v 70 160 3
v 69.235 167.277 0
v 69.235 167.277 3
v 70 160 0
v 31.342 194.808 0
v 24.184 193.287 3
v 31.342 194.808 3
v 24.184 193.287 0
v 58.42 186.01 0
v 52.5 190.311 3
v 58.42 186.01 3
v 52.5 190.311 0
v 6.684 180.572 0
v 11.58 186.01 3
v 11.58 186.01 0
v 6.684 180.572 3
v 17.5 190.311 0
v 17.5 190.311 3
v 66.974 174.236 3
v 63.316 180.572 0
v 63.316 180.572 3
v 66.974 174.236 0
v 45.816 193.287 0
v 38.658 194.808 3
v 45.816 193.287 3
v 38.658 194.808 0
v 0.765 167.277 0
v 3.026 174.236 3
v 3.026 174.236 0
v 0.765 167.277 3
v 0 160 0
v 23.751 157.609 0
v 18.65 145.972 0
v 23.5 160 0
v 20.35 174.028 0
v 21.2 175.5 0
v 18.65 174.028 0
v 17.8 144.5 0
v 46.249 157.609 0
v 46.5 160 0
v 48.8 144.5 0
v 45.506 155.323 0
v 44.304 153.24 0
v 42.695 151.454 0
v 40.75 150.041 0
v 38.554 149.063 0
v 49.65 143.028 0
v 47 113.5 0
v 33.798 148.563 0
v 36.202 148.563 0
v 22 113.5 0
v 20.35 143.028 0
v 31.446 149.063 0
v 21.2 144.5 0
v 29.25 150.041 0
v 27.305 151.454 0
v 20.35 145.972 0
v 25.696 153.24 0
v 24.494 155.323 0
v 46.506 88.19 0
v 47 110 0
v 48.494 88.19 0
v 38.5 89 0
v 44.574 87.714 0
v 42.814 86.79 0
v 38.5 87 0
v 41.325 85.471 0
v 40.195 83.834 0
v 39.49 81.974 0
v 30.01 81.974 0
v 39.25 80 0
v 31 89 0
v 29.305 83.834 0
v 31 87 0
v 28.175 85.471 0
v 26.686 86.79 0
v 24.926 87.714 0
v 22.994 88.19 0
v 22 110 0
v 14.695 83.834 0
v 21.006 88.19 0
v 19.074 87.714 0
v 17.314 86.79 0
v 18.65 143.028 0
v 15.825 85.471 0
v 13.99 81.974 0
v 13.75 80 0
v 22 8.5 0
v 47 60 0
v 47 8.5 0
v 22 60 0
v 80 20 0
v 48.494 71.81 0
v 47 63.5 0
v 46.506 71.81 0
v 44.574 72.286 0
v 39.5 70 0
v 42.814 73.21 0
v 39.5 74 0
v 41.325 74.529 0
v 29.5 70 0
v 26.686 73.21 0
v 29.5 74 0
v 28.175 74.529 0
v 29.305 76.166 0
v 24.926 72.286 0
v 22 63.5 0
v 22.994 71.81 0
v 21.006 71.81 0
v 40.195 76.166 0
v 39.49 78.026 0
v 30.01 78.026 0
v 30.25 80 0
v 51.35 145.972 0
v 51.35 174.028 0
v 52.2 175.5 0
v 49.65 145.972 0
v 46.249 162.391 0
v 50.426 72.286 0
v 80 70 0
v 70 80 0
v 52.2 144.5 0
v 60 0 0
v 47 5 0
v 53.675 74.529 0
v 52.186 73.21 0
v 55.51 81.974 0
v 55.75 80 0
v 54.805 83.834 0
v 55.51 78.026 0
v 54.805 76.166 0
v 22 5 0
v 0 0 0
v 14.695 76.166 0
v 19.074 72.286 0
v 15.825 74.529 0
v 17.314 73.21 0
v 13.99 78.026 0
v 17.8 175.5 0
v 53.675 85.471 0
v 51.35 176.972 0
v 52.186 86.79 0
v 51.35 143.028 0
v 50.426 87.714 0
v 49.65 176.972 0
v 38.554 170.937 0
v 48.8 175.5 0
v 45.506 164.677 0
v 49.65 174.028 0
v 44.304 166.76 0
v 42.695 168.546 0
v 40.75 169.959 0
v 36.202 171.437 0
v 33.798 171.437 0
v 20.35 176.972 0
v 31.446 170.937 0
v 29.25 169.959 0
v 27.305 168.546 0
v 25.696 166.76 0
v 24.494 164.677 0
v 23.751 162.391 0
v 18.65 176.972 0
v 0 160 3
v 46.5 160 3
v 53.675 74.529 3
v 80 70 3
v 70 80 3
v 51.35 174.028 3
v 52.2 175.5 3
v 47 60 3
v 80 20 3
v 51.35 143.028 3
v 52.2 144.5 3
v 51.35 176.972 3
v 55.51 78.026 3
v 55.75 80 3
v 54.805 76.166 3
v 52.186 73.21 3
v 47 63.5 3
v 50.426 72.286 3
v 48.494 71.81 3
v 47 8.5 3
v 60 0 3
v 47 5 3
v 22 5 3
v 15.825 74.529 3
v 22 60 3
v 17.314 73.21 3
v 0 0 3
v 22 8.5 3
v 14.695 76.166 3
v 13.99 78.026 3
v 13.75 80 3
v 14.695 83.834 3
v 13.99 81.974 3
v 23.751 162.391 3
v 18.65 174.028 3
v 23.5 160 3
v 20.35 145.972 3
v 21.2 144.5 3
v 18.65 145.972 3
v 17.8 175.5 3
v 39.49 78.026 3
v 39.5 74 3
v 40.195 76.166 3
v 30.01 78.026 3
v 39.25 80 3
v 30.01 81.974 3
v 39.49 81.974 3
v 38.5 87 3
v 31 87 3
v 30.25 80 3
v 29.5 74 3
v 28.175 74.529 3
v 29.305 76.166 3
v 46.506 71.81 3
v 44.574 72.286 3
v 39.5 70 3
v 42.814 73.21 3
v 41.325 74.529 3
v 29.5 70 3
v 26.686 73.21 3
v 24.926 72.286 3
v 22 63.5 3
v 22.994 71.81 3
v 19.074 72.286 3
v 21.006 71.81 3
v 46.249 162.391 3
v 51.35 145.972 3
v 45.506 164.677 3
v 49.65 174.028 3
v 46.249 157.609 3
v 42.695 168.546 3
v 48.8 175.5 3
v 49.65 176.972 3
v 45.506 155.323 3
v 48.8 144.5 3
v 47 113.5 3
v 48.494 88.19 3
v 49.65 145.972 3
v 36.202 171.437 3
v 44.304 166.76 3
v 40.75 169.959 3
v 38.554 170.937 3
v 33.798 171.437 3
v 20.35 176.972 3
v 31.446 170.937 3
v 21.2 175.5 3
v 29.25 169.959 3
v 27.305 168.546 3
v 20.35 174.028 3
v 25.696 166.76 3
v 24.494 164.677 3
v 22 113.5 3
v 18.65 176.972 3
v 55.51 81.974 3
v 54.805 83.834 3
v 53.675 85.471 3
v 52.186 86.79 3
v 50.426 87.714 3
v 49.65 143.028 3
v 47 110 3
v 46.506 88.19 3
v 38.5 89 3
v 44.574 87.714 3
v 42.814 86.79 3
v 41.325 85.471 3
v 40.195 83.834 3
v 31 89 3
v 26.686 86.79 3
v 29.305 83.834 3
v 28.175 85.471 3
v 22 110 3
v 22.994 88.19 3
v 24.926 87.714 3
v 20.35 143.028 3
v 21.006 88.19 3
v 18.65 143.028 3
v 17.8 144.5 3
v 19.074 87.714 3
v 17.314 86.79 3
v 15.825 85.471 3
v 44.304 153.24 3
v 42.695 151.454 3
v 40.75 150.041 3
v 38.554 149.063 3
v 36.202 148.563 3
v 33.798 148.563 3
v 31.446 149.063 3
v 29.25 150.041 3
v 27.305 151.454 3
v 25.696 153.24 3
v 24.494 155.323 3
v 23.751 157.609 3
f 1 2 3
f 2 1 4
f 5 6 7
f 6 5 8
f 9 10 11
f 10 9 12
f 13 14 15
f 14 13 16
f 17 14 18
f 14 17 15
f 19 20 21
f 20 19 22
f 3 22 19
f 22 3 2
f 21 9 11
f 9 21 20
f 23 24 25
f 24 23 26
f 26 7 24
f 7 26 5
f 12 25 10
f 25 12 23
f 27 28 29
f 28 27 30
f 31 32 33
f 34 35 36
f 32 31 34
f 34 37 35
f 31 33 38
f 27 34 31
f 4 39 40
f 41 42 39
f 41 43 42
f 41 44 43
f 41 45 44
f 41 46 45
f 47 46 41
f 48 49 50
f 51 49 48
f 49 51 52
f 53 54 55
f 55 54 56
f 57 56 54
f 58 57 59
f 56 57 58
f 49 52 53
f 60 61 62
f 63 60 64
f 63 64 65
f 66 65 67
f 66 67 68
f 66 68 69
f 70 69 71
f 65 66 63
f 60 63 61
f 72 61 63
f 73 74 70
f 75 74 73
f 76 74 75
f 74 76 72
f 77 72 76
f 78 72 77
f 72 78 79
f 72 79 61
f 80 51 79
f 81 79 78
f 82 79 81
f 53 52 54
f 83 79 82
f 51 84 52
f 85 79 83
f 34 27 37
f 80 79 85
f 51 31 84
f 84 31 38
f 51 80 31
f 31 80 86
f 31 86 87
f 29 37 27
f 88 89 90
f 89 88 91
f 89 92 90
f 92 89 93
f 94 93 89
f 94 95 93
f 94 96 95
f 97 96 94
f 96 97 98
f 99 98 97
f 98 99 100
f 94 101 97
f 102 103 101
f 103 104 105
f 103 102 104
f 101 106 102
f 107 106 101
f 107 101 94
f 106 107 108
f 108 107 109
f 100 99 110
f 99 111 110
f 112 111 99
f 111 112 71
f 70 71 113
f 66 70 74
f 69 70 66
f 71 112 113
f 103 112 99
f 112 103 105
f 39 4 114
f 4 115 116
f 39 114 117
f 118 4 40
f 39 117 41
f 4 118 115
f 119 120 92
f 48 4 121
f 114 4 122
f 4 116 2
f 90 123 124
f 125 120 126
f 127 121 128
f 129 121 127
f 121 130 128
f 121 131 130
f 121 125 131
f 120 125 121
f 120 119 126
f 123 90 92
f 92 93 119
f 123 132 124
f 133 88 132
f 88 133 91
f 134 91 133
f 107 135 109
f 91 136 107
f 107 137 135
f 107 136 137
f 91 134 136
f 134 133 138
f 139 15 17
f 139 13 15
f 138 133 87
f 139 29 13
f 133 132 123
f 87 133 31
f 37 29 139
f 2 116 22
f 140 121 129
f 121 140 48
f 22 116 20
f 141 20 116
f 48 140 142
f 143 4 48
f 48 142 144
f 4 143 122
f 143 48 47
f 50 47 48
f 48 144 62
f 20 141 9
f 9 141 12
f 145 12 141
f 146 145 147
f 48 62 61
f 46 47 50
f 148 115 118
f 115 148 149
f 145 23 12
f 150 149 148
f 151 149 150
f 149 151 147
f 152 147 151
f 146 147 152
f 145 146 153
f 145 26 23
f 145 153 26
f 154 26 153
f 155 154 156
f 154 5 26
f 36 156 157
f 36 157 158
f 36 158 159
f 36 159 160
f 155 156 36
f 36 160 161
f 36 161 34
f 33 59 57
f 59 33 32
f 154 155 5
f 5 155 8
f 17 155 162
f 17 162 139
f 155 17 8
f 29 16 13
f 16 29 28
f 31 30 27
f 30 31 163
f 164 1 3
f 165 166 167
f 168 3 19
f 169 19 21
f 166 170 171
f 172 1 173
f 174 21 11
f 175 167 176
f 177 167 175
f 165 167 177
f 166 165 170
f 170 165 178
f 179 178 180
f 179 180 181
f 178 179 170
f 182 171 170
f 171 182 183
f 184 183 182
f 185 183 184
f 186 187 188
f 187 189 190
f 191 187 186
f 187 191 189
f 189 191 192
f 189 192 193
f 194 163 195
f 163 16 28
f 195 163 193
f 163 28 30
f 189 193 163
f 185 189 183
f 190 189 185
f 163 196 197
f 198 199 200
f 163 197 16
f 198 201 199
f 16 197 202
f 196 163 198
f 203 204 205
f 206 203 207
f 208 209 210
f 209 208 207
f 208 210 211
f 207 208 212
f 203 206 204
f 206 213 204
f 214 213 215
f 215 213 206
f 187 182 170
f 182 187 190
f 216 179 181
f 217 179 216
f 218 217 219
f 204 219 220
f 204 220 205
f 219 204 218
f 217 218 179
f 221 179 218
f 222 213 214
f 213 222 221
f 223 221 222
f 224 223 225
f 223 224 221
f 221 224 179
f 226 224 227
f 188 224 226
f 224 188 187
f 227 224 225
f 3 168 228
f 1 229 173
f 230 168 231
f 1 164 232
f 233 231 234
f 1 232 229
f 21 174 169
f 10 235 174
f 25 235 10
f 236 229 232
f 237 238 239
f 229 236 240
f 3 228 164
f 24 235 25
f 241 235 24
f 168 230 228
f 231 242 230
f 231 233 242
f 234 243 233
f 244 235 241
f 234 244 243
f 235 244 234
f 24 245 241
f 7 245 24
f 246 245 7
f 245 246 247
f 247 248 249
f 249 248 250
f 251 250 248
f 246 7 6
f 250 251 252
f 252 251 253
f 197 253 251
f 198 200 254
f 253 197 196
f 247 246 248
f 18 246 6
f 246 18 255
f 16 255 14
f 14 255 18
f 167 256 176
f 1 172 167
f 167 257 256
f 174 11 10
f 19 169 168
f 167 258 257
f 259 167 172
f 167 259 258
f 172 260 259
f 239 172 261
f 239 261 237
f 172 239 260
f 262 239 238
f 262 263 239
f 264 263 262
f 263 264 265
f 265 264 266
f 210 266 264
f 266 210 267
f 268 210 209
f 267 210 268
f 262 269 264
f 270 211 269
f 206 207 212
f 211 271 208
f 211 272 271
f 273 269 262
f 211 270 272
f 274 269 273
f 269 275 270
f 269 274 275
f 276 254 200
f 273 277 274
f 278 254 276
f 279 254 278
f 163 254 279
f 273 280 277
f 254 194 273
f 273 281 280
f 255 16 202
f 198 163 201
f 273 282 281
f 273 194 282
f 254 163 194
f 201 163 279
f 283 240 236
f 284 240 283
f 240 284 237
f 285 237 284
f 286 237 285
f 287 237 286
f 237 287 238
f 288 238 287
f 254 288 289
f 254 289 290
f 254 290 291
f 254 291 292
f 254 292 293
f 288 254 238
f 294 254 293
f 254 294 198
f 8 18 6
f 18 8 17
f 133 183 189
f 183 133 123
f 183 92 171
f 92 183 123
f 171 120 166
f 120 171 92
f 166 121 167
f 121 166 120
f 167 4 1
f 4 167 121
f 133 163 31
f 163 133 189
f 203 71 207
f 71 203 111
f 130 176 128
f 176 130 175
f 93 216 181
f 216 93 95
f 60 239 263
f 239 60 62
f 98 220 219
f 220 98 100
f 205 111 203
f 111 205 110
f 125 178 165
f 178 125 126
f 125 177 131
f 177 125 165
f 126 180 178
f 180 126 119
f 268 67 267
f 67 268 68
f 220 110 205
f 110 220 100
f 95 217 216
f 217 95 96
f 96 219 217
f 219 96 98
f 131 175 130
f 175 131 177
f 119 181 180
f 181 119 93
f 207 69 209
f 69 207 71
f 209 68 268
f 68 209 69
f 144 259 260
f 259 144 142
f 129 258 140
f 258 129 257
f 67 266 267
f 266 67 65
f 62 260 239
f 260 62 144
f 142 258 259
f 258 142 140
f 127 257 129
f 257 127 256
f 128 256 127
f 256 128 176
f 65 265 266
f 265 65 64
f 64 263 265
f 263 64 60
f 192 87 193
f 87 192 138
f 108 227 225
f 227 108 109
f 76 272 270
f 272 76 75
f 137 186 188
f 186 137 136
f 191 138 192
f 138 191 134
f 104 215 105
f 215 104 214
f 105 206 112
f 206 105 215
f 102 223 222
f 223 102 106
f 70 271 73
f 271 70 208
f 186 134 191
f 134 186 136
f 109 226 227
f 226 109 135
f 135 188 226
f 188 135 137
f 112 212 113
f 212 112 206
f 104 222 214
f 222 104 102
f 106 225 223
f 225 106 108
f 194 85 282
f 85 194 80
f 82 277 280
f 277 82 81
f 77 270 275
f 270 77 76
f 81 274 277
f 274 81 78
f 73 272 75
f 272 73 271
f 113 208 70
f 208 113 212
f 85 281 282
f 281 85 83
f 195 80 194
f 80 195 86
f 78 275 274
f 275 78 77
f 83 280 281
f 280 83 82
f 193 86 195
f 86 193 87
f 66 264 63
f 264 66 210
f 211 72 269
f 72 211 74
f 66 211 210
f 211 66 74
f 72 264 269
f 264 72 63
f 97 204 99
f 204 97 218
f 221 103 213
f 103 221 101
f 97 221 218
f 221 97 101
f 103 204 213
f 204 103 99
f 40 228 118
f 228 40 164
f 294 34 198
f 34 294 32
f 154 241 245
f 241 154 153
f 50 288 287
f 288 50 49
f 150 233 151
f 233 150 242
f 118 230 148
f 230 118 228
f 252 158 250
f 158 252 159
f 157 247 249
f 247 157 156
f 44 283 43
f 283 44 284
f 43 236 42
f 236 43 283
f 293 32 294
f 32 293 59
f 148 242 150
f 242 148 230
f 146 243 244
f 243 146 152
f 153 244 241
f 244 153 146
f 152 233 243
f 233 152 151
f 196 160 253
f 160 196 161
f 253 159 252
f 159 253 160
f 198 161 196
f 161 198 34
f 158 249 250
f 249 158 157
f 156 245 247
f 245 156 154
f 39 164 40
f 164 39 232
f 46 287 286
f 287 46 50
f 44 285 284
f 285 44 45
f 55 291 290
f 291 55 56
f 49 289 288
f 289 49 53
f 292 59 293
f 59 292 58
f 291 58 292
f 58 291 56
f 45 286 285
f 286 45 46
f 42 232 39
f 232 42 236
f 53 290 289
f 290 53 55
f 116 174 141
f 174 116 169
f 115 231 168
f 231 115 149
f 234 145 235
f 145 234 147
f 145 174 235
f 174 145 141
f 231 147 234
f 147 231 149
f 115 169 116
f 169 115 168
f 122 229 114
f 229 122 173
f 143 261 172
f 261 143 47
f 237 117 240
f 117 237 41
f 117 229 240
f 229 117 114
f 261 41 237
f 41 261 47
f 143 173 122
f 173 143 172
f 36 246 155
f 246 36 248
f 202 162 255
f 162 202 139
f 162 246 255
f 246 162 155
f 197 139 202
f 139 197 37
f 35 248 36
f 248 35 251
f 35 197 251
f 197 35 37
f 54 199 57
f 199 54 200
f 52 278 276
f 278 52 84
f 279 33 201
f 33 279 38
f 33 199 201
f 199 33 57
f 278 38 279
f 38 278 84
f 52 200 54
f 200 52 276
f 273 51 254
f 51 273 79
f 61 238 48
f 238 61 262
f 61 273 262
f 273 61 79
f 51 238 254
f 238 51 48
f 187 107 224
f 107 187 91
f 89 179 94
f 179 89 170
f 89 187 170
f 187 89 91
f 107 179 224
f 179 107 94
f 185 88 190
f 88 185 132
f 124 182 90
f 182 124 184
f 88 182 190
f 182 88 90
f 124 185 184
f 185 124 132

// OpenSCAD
// file: modules.scad
thickness = 3;
ultrasonic_hole_radius = 8.25;
ultrasonic_hole_distance = 25.5;
pin_side = 2.5;



module roundExtract(pos_x, pos_y, radius) {
     translate([pos_x, pos_y,0]) 
		cylinder(h = thickness, r = radius);
 }

module squareExtract(pos_x, pos_y, width, length) {
	translate([pos_x, pos_y,0])
		cube(size = [width, length, thickness]);
}

module ultrasonicExtract(pos_x, pos_y, rotation) {
	translate([pos_x,pos_y,0]){
		rotate([0,0,rotation]) {
			union(){ 
				translate([0,0,0])
					cylinder(h = thickness, r = ultrasonic_hole_radius);
				translate([ultrasonic_hole_distance,0,0])
					cylinder(h = thickness, r = ultrasonic_hole_radius);
				translate([ultrasonic_hole_distance/2-3.75,-9,0])
					cube(size = [7.5, 2, thickness]);
				translate([ultrasonic_hole_distance/2-4.75,6,0])
					cube(size = [10, 4, thickness]);
			}
		}
	}
}

module IMUExtract(pos_x,pos_y, rotation) {
	translate([pos_x,pos_y,0]){
		rotate([0,0,rotation]) {
			union(){ 
				roundExtract(13,3,2);
				roundExtract(13,25,2);
				squareExtract(0,0,pin_side,pin_side*11);
			}
		}
	}
}

module stepperExtraction(pos_x,pos_y, rotation) {
	translate([pos_x,pos_y,0]){
		rotate([0,0,rotation]) {
			union(){ 
				roundExtract(14,9,2);
				roundExtract(10,33,2);
				squareExtract(1.5,1.5,pin_side,pin_side*3);//3 pins
				squareExtract(20-pin_side-1.5,1.5,pin_side,pin_side*2);//2 pin
				squareExtract(20-pin_side-1.5,32,pin_side,pin_side*4);//4 pins
			}
		}
	}

}

module screwAttach(pos_x, pos_y, pos_z, width, length, height, rotation) {
translate([pos_x,pos_y, pos_z]){
		rotate([0,0,rotation]) {
			difference(){ 
				cube(width,length,height);
				translate([width/2, 0,height/2]) {
					rotate([270,0,0]) {
						cylinder(h = 10, r=2);
					}
				}
				
			}
		}
	}


}
// main file
include <modules.scad>;

thickness = 3;
height = 160;
width = 70;
radius = width/2;
motor_side = 44;//Slightly bigger (normal 43.2)
M3_radius = 1.7;//Slightly bigger (normal 1.5)
cache_hole_distance = 48;
pos_y_motor_extract = height-30;
pos_x_motor_extract = (width-motor_side)/2;
plate_hole_width = 25;
plate_hole_height = 3.5;//Slightly bigger (normal 3)
plate_hole_distance_from_border = 22;
plate_hole_distance_from_bottom1 = 110;
plate_hole_distance_from_bottom2 = 60;
plate_hole_distance_from_bottom3 = 5;
distance_sensor = true;
screw_cache_offset = 2;
//Stepper motor distances
stepper_round_hole_radius = 11.5;
stepper_screw_distance = 31;

//TODO add holes to screw in the plate
difference(){
	union(){
		translate([radius,height,0])
			cylinder(h = thickness, r = radius);
		polyhedron(
			points=[ 	
				[0,0,0],
				[width-10,0,0],
				[width+10,20,0],
				[width+10,height/2-10,0],
				[width,height/2,0],
				[width,height,0],
				[0,height,0],											
				[0,0,thickness],
				[width-10,0,thickness],
				[width+10,20,thickness],
				[width+10,height/2-10,thickness],
				[width,height/2,thickness],
				[width,height,thickness],
				[0,height,thickness]
			],                                 
  				faces=[ 
				[0,1,2,3,4,5,6],
				[13,12,11,10,9,8,7],
				[0,7,8,1], 
				[1,8,9,2], 
				[2,9,10,3], 
				[3,10,11,4], 
				[4,11,12,5],
				[5,12,13,6],
				[6,13,7,0]
			]                        
 		);
	}
    
    //Hole for the stepper motor
    roundExtract(width/2, 160, stepper_round_hole_radius);

	//Hole for the stepper motor screws
    roundExtract(width/2 + stepper_screw_distance/2, 160+stepper_screw_distance/2,M3_radius);
    roundExtract(width/2 + stepper_screw_distance/2, 160-stepper_screw_distance/2,M3_radius);
    roundExtract(width/2 - stepper_screw_distance/2, 160+stepper_screw_distance/2,M3_radius);
    roundExtract(width/2 - stepper_screw_distance/2, 160-stepper_screw_distance/2,M3_radius);
	
	

	//Holes for plates
	squareExtract(
		plate_hole_distance_from_border,
		plate_hole_distance_from_bottom1,
		plate_hole_width, 
		plate_hole_height);
	squareExtract(
		plate_hole_distance_from_border, 
		plate_hole_distance_from_bottom2, 
		plate_hole_width, 
		plate_hole_height);		
	squareExtract(
		plate_hole_distance_from_border,
		plate_hole_distance_from_bottom3, 
		plate_hole_width, 
		plate_hole_height);
	
	//Hole for distance sensors
	if(distance_sensor==true){
		ultrasonicExtract(47.5, 80, 180);
	}
	
}	
